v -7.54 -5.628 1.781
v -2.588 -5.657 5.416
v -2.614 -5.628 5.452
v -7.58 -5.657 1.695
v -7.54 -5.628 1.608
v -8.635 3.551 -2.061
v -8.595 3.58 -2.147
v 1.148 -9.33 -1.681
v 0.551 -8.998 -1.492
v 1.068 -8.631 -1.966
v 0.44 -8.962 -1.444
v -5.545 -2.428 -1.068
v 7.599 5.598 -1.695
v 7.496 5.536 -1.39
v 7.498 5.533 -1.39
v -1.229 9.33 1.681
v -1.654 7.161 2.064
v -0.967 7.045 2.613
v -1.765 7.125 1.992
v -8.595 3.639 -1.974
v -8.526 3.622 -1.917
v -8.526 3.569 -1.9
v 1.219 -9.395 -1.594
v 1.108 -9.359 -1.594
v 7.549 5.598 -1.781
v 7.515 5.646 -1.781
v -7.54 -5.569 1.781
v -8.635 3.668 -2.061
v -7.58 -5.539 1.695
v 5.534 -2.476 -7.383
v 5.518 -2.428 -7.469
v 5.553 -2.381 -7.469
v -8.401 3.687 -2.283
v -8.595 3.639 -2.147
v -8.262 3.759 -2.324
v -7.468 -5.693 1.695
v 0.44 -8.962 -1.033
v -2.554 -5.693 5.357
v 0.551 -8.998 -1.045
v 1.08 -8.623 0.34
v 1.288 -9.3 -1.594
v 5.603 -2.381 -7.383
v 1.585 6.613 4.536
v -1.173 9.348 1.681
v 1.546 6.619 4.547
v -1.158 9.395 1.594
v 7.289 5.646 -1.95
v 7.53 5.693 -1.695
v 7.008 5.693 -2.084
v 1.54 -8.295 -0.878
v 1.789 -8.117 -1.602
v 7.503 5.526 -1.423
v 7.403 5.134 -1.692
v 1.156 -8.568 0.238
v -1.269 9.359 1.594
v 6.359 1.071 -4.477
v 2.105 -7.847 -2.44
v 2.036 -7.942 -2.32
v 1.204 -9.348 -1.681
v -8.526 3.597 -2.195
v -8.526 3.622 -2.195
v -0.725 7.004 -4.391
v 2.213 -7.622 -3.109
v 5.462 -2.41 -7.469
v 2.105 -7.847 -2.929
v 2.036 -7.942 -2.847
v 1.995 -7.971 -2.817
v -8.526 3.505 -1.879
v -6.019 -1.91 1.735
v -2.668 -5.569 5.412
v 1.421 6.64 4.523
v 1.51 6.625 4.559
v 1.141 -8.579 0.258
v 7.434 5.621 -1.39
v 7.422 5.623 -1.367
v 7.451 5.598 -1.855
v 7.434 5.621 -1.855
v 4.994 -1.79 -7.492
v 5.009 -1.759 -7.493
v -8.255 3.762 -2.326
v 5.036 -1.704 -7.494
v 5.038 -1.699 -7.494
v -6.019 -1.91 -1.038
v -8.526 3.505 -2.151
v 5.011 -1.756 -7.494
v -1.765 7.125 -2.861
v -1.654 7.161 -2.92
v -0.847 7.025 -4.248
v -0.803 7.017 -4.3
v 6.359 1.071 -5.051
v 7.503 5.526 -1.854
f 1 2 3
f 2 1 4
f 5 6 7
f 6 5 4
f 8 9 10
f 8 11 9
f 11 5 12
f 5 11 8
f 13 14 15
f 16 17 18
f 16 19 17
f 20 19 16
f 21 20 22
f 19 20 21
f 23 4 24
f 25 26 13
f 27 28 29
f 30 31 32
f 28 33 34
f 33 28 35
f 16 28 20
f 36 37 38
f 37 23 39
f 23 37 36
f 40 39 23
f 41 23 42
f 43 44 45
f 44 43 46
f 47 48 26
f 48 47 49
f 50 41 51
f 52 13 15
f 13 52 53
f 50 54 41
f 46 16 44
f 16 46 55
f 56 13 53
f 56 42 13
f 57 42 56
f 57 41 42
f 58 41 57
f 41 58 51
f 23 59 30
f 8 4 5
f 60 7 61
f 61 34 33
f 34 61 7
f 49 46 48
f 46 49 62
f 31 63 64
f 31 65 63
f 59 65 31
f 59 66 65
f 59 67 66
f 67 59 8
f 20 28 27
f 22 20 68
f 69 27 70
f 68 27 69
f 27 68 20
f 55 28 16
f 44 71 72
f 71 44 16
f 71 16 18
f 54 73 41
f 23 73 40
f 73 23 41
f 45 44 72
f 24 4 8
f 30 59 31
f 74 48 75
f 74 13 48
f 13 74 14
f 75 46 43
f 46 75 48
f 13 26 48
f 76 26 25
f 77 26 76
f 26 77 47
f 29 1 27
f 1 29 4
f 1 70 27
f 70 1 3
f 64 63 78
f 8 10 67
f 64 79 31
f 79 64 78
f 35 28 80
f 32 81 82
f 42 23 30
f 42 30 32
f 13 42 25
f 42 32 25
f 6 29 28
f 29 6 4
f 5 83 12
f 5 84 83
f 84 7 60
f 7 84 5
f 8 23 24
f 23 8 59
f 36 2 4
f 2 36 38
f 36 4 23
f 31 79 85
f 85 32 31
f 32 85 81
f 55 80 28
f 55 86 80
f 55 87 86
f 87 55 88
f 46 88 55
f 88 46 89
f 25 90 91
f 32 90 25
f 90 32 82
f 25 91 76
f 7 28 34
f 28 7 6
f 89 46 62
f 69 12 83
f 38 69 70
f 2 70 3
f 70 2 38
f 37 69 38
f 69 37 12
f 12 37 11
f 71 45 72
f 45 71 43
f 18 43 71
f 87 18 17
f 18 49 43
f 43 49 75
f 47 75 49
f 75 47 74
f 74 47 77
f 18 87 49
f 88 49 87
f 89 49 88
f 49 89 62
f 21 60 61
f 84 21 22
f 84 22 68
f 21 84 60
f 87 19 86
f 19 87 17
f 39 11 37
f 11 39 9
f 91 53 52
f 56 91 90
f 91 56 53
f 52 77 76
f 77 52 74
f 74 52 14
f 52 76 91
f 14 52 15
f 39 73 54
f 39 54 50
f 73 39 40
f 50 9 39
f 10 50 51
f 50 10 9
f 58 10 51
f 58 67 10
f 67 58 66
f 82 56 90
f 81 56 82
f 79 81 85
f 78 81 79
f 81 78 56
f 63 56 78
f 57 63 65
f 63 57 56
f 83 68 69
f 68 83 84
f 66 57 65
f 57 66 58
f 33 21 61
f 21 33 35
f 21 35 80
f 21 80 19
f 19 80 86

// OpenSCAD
// Auto-generated OpenSCAD file

    inner_points = 10*[[0.20054969961687025, -0.7846648703547799, 0.5607849288864212], [-0.593825213987971, -0.18515141359460924, -0.7149838983501856], [0.6259312435012088, 0.10711605562361853, 0.7149838983501856], [-0.16844367010363231, 0.7066295123837892, -0.5607849288864212], [0.05204957726190045, -0.8903315309220826, -0.42246593966397755], [0.7403313734536651, 0.5526003178298201, -0.17296676604139943], [-0.35354696868411156, -0.01417916531901519, 0.8759494264322145], [-0.8444976651021647, 0.3563405276717107, 0.08748092941239895], [0.3856529981973495, -0.06385619265197554, -0.8759494264322145]];

    outer_points = 10*[[0.05186484528504093, -0.5598217429238111, 0.7670841877921737], [0.7499238660434013, 0.5598217429238111, -0.16947657205566397], [-0.7499238660434013, -0.5598217429238111, 0.16947657205566397], [-0.05186484528504093, 0.5598217429238111, -0.7670841877921737], [0.44189511281724014, 0.3609594235595834, 0.7608846831151523], [-0.8554262739081575, 0.3609594235595834, -0.20606475108230704], [0.11884163653508852, -0.9300334806470967, -0.15944556277482932], [0.5502658375172237, -0.23805575111085425, -0.7382719448902207], [-0.11884163653508852, 0.9300334806470967, 0.15944556277482932]];

    // Convex hull for inner set (I)
    module inner_hull() {
        hull() {
            for (p = inner_points) {
                translate(p) sphere(r=0.1);
            }
        }
    }

    // Convex hull for outer set (O) minus inner hull (O \ I)
    module outer_minus_inner() {
        difference() {
            hull() {
                for (p = outer_points) {
                    translate(p) sphere(r=0.1);
                }
            }
            inner_hull(); // Subtract inner hull
        }
    }

    // Convex hull for outer set (O) minus all translated inner hulls
    module outer_minus_AllTranslationInner() {
        difference() {
            hull() {
                for (p = outer_points) {
                    translate(p) sphere(r=0.1);
                }
            }
            hull() {
                translate([0,0,50]) inner_hull();
                translate([0,0,-50]) inner_hull();
            }; // Subtract translated inner hulls
        }
    }

    // Difference between outer_minus_inner and outer_minus_AllTranslationInner
    module outer_minus_inner_diff() {
        difference() {
            // Outer minus inner
            difference() {
                hull() {
                    for (p = outer_points) {
                        translate(p) sphere(r=0.1);
                    }
                }
                inner_hull();
            }

            // Subtract Outer minus AllTranslationInner
            difference() {
                hull() {
                    for (p = outer_points) {
                        translate(p) sphere(r=0.1);
                    }
                }
                hull() {
                    translate([0,0,50]) inner_hull();
                    translate([0,0,-50]) inner_hull();
                };
            }
        }
    }

    // Rendering all with colors applied
    color([0, 1, 0, 1]) outer_minus_AllTranslationInner(); // Opaque green
    
